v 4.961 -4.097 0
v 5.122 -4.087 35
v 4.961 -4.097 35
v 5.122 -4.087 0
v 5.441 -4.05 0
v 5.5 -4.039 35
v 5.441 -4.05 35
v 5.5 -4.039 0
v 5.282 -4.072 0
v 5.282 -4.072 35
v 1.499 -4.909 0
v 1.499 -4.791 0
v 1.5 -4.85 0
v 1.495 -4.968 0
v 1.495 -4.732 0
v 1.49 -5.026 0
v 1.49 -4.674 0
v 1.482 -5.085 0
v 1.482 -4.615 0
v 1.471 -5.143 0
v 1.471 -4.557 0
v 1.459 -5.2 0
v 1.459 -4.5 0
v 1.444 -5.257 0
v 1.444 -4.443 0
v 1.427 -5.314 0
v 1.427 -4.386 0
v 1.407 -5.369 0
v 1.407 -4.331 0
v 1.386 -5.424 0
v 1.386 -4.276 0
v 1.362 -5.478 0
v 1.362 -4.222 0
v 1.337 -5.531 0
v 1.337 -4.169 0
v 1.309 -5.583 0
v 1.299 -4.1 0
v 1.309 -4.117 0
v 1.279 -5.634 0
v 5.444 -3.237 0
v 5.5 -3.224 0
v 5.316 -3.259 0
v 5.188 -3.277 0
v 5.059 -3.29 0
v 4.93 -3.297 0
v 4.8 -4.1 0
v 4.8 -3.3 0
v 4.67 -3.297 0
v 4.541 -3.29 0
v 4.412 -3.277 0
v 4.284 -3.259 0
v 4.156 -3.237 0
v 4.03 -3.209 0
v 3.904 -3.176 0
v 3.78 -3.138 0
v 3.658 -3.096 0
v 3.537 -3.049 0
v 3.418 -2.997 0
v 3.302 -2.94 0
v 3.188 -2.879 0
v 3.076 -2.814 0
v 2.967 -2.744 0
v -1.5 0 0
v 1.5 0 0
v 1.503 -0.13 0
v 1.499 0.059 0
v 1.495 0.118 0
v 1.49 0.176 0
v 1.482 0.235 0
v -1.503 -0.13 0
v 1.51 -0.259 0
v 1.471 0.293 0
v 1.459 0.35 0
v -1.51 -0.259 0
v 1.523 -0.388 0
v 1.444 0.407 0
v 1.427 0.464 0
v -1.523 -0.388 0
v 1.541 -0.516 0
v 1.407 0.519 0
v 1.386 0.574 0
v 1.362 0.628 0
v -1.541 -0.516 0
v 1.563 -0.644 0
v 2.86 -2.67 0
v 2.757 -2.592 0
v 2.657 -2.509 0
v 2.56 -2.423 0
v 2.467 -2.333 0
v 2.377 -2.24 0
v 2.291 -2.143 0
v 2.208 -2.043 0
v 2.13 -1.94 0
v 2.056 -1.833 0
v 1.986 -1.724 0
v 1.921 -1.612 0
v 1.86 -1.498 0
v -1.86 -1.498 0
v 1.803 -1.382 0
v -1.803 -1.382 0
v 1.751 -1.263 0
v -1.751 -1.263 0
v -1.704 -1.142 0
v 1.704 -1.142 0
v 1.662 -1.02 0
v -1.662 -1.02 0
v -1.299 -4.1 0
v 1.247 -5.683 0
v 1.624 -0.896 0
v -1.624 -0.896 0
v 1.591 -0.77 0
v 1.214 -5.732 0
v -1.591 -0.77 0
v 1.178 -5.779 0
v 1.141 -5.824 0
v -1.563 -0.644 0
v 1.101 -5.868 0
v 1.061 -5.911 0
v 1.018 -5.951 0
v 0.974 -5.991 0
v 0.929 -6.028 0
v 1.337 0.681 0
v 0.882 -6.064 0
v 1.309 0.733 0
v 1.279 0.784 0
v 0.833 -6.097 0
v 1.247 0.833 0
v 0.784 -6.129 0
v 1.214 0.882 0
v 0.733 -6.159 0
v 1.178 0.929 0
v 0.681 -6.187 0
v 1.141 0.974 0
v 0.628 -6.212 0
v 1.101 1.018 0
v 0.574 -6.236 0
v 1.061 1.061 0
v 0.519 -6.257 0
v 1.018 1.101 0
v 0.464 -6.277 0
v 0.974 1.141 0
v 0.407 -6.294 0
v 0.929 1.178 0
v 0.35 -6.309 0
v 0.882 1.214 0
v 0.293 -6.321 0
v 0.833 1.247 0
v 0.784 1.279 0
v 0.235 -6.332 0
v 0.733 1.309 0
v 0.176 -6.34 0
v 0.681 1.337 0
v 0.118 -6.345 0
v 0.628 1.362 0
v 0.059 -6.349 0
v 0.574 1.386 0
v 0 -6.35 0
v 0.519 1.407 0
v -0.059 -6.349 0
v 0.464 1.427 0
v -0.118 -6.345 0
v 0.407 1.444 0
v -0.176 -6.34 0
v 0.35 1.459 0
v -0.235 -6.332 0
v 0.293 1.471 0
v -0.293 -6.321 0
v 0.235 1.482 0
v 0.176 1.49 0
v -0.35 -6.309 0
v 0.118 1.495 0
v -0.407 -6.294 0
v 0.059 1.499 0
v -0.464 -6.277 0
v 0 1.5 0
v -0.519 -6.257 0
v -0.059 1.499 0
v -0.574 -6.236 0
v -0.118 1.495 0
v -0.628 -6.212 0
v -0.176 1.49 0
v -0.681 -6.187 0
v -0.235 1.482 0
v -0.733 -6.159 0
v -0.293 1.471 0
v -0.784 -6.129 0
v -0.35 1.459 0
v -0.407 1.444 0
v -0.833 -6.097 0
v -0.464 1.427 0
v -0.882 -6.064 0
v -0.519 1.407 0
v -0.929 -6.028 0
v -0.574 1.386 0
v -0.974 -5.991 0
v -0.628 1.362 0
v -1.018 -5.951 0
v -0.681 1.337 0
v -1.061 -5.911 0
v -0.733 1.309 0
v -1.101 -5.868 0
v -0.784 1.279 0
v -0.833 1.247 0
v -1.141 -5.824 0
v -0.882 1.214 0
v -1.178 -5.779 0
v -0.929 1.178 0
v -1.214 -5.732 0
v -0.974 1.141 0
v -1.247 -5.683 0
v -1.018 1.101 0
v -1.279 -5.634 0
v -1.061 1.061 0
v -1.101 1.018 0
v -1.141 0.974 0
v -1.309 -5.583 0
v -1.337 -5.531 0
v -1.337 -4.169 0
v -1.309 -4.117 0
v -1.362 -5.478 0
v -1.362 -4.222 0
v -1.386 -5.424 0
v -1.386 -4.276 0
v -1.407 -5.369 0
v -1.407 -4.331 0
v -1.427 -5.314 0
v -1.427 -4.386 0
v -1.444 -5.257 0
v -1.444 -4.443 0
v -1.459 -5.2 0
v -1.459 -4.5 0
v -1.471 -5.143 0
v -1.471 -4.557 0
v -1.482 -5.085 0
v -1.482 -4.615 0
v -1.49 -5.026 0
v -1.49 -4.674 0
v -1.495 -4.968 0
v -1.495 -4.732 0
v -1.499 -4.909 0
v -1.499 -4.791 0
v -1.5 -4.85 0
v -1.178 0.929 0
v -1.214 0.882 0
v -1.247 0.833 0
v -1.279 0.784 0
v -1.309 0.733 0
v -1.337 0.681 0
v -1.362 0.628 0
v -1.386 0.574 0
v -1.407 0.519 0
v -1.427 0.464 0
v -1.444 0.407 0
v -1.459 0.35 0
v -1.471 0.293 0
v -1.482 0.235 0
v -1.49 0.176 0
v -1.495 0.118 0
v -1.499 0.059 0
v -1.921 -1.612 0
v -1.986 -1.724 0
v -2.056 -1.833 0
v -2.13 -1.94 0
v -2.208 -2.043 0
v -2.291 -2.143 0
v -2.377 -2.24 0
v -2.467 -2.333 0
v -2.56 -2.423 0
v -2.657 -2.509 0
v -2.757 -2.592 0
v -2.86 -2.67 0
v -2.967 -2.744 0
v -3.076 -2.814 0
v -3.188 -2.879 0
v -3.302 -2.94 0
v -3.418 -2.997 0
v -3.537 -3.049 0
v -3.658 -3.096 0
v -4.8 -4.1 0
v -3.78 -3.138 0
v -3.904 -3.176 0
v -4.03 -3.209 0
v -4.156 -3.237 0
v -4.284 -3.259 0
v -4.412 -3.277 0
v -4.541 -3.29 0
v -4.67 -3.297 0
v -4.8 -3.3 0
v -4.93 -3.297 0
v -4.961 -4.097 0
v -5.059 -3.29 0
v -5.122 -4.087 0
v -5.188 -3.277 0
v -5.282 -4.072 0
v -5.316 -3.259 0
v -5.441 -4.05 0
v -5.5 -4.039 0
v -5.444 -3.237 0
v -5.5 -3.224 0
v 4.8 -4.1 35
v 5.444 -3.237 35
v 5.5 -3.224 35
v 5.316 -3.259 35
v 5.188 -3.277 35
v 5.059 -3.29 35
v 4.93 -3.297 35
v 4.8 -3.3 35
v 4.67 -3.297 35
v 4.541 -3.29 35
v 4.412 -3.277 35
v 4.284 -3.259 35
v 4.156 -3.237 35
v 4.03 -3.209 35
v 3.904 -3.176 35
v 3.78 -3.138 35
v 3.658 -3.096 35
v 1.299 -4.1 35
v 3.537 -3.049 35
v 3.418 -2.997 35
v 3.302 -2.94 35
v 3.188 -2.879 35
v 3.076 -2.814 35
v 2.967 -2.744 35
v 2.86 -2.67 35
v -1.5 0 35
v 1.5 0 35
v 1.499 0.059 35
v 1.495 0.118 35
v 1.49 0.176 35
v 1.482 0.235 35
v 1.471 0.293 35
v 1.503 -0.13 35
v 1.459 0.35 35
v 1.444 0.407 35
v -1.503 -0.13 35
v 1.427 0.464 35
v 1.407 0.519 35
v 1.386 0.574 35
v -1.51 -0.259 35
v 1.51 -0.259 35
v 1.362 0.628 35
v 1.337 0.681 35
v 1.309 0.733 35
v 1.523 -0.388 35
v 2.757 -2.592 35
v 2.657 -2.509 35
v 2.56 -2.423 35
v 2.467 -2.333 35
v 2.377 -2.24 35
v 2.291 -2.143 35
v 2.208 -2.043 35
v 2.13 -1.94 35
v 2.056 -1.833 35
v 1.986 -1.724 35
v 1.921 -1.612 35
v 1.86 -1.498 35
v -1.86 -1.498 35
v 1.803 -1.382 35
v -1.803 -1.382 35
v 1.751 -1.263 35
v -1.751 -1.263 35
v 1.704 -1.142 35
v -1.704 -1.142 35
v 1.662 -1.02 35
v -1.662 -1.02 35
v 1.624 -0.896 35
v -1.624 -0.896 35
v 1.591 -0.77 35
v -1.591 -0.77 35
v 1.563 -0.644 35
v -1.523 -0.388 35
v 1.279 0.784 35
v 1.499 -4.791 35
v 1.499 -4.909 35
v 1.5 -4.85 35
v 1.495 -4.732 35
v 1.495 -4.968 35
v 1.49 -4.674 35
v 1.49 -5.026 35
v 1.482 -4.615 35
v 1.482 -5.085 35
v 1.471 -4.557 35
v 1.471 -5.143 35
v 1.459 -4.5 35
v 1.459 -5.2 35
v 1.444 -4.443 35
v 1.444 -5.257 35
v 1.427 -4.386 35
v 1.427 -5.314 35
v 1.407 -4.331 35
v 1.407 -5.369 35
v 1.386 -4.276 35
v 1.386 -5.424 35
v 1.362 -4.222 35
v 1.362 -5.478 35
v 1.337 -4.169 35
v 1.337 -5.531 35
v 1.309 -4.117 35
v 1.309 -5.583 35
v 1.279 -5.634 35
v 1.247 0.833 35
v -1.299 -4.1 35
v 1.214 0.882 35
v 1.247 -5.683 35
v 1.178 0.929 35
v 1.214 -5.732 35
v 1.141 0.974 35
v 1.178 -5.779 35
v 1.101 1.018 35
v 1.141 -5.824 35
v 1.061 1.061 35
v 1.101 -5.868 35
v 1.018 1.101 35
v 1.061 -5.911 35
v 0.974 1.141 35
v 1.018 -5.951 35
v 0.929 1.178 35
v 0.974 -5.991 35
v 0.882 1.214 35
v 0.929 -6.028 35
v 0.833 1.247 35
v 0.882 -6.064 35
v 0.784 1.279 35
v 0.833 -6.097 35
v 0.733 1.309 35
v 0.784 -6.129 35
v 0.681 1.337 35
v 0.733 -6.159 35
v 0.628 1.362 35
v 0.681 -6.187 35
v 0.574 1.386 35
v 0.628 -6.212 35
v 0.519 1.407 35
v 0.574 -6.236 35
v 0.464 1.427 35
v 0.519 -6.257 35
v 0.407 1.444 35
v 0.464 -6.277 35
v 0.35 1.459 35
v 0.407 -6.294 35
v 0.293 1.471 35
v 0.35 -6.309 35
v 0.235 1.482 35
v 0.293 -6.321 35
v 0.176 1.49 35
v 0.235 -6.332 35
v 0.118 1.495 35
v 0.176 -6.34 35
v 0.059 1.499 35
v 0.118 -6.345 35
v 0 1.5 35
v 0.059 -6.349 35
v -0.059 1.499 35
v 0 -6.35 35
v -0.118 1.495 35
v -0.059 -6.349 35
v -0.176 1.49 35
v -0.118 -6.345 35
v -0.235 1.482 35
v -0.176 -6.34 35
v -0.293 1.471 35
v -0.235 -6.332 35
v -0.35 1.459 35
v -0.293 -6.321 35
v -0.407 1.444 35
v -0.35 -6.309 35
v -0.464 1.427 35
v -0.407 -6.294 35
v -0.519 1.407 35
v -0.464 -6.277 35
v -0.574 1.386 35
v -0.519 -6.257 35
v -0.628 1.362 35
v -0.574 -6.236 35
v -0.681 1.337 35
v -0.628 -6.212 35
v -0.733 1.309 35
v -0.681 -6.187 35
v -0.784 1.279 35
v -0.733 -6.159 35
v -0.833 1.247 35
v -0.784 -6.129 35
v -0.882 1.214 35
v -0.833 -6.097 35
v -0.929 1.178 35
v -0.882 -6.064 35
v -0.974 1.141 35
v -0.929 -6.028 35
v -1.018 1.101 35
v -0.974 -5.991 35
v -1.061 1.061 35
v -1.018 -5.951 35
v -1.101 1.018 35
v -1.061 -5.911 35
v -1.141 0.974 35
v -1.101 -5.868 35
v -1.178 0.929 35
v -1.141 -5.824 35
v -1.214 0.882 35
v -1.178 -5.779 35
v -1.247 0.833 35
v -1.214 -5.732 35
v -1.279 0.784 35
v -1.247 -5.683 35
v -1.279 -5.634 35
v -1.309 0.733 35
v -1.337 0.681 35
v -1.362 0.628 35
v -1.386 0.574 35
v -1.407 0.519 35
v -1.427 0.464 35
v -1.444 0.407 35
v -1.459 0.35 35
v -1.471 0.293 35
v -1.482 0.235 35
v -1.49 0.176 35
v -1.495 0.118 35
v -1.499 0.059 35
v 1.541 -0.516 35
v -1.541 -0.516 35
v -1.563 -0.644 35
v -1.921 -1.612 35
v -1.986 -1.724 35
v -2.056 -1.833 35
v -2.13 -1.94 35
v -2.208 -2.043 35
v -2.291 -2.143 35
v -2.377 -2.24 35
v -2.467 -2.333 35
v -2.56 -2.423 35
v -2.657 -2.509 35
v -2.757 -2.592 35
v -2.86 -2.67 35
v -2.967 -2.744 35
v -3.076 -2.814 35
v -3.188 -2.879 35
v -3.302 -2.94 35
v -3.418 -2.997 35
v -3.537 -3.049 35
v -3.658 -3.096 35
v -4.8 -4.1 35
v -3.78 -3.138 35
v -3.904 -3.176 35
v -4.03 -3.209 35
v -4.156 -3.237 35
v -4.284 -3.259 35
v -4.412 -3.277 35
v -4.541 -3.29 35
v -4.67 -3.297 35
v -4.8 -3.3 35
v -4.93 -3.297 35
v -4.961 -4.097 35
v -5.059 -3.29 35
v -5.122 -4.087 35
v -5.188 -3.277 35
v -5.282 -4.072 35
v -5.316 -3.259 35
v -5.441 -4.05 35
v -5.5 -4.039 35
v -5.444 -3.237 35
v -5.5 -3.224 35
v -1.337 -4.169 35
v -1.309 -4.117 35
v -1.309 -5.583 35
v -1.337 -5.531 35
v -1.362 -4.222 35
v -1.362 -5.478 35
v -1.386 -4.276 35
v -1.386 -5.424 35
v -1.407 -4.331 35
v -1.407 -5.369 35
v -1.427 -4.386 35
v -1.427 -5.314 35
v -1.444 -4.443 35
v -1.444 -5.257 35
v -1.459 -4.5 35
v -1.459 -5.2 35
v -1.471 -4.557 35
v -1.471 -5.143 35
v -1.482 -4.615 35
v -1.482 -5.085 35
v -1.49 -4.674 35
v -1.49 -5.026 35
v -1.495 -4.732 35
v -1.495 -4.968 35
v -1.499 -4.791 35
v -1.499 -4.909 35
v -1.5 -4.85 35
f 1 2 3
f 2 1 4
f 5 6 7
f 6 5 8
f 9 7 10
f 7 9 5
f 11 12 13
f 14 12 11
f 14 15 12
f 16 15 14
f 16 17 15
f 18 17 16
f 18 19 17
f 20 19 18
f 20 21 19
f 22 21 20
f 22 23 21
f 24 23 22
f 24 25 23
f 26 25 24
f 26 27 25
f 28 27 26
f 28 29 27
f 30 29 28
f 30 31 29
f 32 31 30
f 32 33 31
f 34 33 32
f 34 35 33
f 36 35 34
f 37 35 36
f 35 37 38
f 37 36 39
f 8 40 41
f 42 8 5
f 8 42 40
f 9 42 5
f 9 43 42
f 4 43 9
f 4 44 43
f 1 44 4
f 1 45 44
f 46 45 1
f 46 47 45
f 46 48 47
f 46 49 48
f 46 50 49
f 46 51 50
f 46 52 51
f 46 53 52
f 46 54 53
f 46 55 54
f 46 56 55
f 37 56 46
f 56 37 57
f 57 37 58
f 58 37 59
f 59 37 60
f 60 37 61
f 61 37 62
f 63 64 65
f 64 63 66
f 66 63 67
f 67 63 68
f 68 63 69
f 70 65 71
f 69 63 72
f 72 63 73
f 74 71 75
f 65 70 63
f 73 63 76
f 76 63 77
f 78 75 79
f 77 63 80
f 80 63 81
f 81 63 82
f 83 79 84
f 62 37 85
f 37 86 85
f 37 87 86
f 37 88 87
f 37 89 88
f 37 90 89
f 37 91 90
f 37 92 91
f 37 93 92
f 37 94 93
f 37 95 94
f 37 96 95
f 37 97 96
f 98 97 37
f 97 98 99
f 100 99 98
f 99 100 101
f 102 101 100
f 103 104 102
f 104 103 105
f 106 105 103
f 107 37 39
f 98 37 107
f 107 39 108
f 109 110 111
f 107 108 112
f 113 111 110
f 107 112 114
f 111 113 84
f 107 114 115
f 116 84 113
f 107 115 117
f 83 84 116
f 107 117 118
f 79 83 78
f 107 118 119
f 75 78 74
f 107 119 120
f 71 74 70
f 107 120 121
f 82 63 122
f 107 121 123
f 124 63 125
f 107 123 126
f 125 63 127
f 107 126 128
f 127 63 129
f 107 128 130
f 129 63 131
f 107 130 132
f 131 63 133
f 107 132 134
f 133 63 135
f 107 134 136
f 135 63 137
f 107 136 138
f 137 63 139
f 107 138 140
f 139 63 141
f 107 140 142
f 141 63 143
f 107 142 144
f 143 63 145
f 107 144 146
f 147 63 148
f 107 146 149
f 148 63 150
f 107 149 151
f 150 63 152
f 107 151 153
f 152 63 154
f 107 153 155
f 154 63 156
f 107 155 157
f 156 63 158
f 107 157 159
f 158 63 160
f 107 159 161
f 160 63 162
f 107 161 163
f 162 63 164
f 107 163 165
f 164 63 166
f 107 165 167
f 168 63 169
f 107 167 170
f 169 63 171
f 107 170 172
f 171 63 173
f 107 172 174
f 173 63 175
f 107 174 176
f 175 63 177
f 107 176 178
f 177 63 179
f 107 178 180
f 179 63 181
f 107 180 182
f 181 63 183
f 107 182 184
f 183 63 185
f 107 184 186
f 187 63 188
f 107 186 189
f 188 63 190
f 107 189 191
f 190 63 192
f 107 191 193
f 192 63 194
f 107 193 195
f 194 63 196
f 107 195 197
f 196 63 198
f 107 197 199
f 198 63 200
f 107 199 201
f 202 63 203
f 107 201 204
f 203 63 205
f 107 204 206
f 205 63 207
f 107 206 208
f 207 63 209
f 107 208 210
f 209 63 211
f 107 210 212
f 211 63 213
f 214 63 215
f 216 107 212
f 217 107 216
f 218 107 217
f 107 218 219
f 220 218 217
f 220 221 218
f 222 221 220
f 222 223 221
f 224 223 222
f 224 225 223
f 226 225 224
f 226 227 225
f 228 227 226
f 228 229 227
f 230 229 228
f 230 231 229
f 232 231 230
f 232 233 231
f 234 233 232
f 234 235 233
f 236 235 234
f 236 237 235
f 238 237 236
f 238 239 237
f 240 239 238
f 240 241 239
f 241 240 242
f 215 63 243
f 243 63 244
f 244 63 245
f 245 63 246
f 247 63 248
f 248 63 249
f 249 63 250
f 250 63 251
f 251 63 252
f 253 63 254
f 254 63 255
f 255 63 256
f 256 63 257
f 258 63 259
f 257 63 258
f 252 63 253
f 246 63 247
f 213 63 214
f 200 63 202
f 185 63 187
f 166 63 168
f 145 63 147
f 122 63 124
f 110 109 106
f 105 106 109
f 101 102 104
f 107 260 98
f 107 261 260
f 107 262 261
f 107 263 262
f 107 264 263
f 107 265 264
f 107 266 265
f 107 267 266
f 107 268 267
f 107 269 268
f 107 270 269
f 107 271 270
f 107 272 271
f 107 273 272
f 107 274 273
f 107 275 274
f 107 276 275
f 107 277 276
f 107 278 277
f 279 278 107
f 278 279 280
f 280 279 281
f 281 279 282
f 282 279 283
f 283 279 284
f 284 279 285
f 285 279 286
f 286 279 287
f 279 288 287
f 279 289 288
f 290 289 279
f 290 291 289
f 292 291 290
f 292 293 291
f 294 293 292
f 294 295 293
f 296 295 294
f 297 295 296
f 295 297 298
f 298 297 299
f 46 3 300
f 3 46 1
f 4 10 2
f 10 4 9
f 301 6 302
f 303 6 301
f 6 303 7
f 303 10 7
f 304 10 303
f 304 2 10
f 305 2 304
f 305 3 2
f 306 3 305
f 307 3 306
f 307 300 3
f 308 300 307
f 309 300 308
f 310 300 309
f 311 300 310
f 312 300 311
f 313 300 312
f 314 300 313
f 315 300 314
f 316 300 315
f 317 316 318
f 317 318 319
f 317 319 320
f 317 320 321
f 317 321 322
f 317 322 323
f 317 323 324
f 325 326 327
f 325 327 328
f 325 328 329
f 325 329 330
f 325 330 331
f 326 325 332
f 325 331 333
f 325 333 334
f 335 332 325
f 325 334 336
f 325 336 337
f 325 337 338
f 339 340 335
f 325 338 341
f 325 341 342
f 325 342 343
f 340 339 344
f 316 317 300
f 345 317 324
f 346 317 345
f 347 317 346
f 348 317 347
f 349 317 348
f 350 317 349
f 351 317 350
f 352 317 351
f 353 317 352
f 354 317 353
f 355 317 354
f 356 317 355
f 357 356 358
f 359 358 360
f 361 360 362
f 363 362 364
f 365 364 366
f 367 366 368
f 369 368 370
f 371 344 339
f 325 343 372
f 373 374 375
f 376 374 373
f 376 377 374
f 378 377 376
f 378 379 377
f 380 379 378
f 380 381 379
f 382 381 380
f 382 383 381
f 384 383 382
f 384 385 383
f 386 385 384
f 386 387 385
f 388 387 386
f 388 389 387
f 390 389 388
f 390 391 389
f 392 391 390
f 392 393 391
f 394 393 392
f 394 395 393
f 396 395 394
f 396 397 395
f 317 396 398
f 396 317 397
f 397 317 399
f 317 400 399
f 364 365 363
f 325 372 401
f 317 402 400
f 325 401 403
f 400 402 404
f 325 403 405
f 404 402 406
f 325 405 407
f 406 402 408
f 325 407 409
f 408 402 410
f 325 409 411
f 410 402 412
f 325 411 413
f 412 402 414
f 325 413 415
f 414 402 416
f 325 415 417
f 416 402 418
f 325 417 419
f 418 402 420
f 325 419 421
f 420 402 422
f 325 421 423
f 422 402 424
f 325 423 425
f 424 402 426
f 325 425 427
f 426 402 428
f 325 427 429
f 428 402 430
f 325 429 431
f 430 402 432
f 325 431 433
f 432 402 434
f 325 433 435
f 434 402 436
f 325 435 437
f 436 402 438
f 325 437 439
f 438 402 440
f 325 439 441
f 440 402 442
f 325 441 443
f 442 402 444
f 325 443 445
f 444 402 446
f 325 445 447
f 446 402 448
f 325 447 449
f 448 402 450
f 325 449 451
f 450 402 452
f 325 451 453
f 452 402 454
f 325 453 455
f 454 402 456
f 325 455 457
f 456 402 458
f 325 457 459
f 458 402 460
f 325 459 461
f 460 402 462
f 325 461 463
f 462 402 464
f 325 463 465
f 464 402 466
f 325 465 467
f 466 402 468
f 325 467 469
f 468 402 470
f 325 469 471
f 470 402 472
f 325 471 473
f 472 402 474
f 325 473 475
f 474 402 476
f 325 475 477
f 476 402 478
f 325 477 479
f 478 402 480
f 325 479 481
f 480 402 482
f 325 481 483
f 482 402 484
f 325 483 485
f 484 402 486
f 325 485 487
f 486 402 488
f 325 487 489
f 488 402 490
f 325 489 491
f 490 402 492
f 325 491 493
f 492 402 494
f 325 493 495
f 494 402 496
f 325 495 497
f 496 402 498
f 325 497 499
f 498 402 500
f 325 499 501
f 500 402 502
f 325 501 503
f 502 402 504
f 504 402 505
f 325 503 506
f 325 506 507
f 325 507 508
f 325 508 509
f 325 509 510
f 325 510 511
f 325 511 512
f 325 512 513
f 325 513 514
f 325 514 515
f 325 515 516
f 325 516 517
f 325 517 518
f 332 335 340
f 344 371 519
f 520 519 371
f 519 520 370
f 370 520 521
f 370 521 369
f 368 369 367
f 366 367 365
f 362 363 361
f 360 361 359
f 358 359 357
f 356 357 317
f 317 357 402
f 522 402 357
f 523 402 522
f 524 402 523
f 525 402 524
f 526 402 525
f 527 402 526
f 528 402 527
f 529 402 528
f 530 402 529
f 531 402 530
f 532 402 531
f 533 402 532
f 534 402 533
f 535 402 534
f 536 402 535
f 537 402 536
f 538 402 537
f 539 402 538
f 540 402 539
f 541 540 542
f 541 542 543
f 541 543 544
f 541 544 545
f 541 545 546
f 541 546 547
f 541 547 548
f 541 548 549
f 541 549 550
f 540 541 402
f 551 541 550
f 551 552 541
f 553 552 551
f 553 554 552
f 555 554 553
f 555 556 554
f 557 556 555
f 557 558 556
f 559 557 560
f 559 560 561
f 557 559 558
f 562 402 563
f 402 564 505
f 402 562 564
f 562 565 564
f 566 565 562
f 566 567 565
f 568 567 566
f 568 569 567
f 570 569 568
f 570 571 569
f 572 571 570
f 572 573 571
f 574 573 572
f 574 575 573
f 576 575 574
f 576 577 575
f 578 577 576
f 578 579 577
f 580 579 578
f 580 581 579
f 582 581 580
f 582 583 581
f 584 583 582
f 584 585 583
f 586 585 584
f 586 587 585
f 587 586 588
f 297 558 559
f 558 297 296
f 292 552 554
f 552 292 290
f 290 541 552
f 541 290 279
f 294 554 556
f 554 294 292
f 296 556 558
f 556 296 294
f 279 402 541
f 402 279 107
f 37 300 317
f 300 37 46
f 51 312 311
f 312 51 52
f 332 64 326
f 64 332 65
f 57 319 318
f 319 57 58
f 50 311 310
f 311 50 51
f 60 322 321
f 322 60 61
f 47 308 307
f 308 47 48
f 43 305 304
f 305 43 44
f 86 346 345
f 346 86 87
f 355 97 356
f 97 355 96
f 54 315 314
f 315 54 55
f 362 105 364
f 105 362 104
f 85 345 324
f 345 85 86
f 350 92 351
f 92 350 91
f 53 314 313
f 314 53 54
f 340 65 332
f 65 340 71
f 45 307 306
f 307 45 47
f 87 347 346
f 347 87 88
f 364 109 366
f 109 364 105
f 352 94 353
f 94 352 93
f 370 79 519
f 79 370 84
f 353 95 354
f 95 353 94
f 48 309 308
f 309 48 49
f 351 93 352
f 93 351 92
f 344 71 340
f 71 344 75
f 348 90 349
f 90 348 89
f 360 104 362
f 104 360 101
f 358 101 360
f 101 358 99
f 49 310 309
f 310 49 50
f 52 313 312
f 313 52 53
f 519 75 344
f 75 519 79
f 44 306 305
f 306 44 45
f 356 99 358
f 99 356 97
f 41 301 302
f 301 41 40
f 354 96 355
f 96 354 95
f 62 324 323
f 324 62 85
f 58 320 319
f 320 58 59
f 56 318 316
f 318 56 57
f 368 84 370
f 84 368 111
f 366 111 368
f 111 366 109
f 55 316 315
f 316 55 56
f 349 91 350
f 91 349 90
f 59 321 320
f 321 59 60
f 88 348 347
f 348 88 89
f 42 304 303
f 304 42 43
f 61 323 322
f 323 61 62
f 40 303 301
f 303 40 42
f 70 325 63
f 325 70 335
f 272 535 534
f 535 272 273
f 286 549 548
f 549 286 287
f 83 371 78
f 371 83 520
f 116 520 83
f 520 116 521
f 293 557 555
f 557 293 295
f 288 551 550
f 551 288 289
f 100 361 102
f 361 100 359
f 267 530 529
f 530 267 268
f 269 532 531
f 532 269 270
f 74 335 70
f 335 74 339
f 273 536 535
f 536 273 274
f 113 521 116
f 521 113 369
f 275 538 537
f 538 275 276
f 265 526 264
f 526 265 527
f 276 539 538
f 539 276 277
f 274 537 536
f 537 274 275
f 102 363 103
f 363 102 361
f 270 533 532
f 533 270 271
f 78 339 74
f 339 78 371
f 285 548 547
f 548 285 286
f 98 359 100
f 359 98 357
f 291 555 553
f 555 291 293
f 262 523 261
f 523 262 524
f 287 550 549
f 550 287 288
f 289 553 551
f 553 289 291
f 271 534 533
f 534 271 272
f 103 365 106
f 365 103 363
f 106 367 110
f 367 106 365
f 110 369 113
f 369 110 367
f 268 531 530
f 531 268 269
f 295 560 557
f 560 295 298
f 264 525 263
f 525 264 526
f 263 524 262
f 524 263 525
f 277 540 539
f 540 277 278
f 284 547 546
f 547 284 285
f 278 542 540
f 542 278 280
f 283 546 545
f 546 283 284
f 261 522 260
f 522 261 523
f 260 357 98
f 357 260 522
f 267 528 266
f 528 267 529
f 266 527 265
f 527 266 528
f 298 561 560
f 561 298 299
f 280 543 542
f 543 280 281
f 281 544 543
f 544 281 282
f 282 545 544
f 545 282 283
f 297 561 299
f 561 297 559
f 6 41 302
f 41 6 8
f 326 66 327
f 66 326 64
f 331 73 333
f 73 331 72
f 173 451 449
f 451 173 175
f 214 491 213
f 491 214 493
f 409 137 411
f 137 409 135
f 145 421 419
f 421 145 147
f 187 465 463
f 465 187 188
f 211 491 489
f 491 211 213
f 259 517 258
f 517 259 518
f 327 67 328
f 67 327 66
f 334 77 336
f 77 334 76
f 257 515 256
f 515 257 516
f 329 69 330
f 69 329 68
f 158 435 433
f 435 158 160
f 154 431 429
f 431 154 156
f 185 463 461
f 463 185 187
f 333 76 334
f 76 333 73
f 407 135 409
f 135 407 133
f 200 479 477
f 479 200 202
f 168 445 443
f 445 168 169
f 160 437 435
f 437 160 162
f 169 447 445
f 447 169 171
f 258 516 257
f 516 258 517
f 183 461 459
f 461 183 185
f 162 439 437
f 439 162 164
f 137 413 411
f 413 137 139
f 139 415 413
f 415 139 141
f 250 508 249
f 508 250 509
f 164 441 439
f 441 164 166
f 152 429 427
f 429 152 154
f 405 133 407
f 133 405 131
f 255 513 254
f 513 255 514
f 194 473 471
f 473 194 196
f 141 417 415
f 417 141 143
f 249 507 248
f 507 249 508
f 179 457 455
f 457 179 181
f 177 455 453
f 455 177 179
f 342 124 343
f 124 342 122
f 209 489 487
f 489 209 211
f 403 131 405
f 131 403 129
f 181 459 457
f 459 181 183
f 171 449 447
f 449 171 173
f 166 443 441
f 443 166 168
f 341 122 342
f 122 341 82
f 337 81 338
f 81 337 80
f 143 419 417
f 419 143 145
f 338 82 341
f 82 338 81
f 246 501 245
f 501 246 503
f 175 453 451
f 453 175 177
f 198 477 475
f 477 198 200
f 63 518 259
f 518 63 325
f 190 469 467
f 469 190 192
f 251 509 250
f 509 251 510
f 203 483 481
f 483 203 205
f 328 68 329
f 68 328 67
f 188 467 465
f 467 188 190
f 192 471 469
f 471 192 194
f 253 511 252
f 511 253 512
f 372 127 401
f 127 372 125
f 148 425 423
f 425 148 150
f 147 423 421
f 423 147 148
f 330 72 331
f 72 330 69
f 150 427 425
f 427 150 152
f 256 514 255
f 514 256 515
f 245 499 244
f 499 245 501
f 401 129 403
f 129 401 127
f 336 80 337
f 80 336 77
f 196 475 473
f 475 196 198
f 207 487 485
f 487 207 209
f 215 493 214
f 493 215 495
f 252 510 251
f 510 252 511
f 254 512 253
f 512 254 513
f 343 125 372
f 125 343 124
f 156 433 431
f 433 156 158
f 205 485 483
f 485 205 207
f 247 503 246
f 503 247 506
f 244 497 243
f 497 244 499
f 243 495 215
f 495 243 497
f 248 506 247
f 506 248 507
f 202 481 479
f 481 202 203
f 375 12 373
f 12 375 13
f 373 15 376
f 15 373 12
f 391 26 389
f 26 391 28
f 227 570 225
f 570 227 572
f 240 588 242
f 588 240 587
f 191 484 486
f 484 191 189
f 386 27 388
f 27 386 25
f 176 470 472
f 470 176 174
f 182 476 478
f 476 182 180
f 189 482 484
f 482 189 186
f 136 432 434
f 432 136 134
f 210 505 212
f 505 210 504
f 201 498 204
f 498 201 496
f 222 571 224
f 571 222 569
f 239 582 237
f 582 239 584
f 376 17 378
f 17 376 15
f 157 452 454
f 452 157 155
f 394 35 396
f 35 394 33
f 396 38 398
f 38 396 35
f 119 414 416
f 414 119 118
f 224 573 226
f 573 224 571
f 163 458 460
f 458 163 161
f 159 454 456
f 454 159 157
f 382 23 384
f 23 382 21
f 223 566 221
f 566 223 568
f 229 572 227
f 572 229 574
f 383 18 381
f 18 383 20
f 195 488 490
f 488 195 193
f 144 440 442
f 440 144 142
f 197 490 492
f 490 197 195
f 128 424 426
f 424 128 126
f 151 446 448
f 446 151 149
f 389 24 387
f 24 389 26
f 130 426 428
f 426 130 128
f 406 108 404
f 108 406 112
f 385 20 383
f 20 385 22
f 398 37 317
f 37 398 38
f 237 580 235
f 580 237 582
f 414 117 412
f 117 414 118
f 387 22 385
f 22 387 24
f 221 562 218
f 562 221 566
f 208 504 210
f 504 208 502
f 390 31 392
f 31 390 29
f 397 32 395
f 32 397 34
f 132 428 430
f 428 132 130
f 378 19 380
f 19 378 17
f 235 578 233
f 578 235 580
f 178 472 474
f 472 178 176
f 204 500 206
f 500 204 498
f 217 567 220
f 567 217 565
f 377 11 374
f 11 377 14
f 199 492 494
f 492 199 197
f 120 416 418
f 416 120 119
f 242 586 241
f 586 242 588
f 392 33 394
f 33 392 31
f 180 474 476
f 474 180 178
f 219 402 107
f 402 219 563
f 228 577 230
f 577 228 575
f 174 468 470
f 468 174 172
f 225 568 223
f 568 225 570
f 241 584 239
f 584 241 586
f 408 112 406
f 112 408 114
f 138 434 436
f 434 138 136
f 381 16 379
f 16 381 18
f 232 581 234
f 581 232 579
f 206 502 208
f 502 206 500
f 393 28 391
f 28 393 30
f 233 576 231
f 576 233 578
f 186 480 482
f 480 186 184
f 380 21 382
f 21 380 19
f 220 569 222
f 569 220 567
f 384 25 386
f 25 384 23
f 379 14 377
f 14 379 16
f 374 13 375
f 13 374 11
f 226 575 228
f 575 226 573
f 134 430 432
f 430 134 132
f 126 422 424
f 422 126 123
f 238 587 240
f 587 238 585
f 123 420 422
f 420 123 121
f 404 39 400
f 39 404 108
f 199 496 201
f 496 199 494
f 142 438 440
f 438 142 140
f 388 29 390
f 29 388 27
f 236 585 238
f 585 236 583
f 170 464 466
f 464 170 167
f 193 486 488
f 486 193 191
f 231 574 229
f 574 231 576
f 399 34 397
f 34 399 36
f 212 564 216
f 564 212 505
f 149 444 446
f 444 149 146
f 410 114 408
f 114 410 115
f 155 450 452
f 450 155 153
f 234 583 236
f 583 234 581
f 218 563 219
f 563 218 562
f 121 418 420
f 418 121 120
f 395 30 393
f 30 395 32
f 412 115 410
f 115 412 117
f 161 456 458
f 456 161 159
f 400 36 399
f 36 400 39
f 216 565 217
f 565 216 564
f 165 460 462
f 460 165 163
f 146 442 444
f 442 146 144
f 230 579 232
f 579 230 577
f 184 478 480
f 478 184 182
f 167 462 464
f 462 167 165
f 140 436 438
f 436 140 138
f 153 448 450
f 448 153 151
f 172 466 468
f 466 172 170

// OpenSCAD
// Electrode Seating Guide
// Racetrack-shaped cover that keeps the two electrodes parallel and seated
// to a consistent depth. Only the top is open, so the bottom face stops each
// electrode at the same height while also sitting flat on the print bed.
// Modified from Vial Cap.scad by Codex, then hand fixed.

$fn = 160; // smooth cylinders for a better fit

// -----------------------------
// Key parameters
// -----------------------------
electrode_od = 6.0;        // mm, outer diameter of electrode
electrode_tol = 0.6;       // mm, print clearance on each electrode hole
electrode_cutout = 0;      // mm, additional clearance used on the cap
electrode_offset = 4.8;    // mm, distance from origin to each electrode center

stop_height = 35;           // mm, overall height of the figure-eight stop
shell_wall = 0.8;          // mm extra wall around each electrode sleeve

// Derived dimensions
electrode_port_od = electrode_od + electrode_tol + electrode_cutout;
outer_shell_od = electrode_port_od + 2 * shell_wall;
separation = (electrode_offset - ((electrode_od + electrode_tol) / 2))*2;
assert(separation > 0, "electrode_offset must be greater than half electrode_od");

// -----------------------------
// Helper modules
// -----------------------------
module electrode_shell(height) {
  union() {
    // Cylindrical sleeves around each electrode port
    for (offset = [-electrode_offset, electrode_offset])
      translate([-offset, 0, 0])
        cylinder(d = outer_shell_od, h = height, center = false);

    // Rectangular bridge that closes the sleeves into a racetrack profile
    translate([- electrode_offset, -outer_shell_od / 2, 0])
      cube([2 * electrode_offset, outer_shell_od, height], center = false);
  }
}

// -----------------------------
// Model
// -----------------------------
union() {
  difference() {
  electrode_shell(stop_height);

  // Openings for the electrodes
  for (offset = [-electrode_offset, electrode_offset])
    translate([-offset, 0, 0])
      cylinder(d = electrode_port_od, h = stop_height, center = false);

  // Remove 3/4 of cross-section to allow easy removal
  translate([-outer_shell_od *2, 0, 0])
    cube([outer_shell_od *4, outer_shell_od, stop_height], center = false);
  for (offset = [-electrode_offset*2, electrode_offset*2])
    translate([offset, 0 , stop_height/2])
      cube([outer_shell_od, outer_shell_od, stop_height], center = true);
  }
  // Central cylinder to protrude beyond centre point for better seating
      cylinder(d = separation, h = stop_height, center = false);

  // Pull handle
    translate([0,-outer_shell_od/2 - separation/4,0])
      cylinder(d = separation, h = stop_height, center = false); 
}
